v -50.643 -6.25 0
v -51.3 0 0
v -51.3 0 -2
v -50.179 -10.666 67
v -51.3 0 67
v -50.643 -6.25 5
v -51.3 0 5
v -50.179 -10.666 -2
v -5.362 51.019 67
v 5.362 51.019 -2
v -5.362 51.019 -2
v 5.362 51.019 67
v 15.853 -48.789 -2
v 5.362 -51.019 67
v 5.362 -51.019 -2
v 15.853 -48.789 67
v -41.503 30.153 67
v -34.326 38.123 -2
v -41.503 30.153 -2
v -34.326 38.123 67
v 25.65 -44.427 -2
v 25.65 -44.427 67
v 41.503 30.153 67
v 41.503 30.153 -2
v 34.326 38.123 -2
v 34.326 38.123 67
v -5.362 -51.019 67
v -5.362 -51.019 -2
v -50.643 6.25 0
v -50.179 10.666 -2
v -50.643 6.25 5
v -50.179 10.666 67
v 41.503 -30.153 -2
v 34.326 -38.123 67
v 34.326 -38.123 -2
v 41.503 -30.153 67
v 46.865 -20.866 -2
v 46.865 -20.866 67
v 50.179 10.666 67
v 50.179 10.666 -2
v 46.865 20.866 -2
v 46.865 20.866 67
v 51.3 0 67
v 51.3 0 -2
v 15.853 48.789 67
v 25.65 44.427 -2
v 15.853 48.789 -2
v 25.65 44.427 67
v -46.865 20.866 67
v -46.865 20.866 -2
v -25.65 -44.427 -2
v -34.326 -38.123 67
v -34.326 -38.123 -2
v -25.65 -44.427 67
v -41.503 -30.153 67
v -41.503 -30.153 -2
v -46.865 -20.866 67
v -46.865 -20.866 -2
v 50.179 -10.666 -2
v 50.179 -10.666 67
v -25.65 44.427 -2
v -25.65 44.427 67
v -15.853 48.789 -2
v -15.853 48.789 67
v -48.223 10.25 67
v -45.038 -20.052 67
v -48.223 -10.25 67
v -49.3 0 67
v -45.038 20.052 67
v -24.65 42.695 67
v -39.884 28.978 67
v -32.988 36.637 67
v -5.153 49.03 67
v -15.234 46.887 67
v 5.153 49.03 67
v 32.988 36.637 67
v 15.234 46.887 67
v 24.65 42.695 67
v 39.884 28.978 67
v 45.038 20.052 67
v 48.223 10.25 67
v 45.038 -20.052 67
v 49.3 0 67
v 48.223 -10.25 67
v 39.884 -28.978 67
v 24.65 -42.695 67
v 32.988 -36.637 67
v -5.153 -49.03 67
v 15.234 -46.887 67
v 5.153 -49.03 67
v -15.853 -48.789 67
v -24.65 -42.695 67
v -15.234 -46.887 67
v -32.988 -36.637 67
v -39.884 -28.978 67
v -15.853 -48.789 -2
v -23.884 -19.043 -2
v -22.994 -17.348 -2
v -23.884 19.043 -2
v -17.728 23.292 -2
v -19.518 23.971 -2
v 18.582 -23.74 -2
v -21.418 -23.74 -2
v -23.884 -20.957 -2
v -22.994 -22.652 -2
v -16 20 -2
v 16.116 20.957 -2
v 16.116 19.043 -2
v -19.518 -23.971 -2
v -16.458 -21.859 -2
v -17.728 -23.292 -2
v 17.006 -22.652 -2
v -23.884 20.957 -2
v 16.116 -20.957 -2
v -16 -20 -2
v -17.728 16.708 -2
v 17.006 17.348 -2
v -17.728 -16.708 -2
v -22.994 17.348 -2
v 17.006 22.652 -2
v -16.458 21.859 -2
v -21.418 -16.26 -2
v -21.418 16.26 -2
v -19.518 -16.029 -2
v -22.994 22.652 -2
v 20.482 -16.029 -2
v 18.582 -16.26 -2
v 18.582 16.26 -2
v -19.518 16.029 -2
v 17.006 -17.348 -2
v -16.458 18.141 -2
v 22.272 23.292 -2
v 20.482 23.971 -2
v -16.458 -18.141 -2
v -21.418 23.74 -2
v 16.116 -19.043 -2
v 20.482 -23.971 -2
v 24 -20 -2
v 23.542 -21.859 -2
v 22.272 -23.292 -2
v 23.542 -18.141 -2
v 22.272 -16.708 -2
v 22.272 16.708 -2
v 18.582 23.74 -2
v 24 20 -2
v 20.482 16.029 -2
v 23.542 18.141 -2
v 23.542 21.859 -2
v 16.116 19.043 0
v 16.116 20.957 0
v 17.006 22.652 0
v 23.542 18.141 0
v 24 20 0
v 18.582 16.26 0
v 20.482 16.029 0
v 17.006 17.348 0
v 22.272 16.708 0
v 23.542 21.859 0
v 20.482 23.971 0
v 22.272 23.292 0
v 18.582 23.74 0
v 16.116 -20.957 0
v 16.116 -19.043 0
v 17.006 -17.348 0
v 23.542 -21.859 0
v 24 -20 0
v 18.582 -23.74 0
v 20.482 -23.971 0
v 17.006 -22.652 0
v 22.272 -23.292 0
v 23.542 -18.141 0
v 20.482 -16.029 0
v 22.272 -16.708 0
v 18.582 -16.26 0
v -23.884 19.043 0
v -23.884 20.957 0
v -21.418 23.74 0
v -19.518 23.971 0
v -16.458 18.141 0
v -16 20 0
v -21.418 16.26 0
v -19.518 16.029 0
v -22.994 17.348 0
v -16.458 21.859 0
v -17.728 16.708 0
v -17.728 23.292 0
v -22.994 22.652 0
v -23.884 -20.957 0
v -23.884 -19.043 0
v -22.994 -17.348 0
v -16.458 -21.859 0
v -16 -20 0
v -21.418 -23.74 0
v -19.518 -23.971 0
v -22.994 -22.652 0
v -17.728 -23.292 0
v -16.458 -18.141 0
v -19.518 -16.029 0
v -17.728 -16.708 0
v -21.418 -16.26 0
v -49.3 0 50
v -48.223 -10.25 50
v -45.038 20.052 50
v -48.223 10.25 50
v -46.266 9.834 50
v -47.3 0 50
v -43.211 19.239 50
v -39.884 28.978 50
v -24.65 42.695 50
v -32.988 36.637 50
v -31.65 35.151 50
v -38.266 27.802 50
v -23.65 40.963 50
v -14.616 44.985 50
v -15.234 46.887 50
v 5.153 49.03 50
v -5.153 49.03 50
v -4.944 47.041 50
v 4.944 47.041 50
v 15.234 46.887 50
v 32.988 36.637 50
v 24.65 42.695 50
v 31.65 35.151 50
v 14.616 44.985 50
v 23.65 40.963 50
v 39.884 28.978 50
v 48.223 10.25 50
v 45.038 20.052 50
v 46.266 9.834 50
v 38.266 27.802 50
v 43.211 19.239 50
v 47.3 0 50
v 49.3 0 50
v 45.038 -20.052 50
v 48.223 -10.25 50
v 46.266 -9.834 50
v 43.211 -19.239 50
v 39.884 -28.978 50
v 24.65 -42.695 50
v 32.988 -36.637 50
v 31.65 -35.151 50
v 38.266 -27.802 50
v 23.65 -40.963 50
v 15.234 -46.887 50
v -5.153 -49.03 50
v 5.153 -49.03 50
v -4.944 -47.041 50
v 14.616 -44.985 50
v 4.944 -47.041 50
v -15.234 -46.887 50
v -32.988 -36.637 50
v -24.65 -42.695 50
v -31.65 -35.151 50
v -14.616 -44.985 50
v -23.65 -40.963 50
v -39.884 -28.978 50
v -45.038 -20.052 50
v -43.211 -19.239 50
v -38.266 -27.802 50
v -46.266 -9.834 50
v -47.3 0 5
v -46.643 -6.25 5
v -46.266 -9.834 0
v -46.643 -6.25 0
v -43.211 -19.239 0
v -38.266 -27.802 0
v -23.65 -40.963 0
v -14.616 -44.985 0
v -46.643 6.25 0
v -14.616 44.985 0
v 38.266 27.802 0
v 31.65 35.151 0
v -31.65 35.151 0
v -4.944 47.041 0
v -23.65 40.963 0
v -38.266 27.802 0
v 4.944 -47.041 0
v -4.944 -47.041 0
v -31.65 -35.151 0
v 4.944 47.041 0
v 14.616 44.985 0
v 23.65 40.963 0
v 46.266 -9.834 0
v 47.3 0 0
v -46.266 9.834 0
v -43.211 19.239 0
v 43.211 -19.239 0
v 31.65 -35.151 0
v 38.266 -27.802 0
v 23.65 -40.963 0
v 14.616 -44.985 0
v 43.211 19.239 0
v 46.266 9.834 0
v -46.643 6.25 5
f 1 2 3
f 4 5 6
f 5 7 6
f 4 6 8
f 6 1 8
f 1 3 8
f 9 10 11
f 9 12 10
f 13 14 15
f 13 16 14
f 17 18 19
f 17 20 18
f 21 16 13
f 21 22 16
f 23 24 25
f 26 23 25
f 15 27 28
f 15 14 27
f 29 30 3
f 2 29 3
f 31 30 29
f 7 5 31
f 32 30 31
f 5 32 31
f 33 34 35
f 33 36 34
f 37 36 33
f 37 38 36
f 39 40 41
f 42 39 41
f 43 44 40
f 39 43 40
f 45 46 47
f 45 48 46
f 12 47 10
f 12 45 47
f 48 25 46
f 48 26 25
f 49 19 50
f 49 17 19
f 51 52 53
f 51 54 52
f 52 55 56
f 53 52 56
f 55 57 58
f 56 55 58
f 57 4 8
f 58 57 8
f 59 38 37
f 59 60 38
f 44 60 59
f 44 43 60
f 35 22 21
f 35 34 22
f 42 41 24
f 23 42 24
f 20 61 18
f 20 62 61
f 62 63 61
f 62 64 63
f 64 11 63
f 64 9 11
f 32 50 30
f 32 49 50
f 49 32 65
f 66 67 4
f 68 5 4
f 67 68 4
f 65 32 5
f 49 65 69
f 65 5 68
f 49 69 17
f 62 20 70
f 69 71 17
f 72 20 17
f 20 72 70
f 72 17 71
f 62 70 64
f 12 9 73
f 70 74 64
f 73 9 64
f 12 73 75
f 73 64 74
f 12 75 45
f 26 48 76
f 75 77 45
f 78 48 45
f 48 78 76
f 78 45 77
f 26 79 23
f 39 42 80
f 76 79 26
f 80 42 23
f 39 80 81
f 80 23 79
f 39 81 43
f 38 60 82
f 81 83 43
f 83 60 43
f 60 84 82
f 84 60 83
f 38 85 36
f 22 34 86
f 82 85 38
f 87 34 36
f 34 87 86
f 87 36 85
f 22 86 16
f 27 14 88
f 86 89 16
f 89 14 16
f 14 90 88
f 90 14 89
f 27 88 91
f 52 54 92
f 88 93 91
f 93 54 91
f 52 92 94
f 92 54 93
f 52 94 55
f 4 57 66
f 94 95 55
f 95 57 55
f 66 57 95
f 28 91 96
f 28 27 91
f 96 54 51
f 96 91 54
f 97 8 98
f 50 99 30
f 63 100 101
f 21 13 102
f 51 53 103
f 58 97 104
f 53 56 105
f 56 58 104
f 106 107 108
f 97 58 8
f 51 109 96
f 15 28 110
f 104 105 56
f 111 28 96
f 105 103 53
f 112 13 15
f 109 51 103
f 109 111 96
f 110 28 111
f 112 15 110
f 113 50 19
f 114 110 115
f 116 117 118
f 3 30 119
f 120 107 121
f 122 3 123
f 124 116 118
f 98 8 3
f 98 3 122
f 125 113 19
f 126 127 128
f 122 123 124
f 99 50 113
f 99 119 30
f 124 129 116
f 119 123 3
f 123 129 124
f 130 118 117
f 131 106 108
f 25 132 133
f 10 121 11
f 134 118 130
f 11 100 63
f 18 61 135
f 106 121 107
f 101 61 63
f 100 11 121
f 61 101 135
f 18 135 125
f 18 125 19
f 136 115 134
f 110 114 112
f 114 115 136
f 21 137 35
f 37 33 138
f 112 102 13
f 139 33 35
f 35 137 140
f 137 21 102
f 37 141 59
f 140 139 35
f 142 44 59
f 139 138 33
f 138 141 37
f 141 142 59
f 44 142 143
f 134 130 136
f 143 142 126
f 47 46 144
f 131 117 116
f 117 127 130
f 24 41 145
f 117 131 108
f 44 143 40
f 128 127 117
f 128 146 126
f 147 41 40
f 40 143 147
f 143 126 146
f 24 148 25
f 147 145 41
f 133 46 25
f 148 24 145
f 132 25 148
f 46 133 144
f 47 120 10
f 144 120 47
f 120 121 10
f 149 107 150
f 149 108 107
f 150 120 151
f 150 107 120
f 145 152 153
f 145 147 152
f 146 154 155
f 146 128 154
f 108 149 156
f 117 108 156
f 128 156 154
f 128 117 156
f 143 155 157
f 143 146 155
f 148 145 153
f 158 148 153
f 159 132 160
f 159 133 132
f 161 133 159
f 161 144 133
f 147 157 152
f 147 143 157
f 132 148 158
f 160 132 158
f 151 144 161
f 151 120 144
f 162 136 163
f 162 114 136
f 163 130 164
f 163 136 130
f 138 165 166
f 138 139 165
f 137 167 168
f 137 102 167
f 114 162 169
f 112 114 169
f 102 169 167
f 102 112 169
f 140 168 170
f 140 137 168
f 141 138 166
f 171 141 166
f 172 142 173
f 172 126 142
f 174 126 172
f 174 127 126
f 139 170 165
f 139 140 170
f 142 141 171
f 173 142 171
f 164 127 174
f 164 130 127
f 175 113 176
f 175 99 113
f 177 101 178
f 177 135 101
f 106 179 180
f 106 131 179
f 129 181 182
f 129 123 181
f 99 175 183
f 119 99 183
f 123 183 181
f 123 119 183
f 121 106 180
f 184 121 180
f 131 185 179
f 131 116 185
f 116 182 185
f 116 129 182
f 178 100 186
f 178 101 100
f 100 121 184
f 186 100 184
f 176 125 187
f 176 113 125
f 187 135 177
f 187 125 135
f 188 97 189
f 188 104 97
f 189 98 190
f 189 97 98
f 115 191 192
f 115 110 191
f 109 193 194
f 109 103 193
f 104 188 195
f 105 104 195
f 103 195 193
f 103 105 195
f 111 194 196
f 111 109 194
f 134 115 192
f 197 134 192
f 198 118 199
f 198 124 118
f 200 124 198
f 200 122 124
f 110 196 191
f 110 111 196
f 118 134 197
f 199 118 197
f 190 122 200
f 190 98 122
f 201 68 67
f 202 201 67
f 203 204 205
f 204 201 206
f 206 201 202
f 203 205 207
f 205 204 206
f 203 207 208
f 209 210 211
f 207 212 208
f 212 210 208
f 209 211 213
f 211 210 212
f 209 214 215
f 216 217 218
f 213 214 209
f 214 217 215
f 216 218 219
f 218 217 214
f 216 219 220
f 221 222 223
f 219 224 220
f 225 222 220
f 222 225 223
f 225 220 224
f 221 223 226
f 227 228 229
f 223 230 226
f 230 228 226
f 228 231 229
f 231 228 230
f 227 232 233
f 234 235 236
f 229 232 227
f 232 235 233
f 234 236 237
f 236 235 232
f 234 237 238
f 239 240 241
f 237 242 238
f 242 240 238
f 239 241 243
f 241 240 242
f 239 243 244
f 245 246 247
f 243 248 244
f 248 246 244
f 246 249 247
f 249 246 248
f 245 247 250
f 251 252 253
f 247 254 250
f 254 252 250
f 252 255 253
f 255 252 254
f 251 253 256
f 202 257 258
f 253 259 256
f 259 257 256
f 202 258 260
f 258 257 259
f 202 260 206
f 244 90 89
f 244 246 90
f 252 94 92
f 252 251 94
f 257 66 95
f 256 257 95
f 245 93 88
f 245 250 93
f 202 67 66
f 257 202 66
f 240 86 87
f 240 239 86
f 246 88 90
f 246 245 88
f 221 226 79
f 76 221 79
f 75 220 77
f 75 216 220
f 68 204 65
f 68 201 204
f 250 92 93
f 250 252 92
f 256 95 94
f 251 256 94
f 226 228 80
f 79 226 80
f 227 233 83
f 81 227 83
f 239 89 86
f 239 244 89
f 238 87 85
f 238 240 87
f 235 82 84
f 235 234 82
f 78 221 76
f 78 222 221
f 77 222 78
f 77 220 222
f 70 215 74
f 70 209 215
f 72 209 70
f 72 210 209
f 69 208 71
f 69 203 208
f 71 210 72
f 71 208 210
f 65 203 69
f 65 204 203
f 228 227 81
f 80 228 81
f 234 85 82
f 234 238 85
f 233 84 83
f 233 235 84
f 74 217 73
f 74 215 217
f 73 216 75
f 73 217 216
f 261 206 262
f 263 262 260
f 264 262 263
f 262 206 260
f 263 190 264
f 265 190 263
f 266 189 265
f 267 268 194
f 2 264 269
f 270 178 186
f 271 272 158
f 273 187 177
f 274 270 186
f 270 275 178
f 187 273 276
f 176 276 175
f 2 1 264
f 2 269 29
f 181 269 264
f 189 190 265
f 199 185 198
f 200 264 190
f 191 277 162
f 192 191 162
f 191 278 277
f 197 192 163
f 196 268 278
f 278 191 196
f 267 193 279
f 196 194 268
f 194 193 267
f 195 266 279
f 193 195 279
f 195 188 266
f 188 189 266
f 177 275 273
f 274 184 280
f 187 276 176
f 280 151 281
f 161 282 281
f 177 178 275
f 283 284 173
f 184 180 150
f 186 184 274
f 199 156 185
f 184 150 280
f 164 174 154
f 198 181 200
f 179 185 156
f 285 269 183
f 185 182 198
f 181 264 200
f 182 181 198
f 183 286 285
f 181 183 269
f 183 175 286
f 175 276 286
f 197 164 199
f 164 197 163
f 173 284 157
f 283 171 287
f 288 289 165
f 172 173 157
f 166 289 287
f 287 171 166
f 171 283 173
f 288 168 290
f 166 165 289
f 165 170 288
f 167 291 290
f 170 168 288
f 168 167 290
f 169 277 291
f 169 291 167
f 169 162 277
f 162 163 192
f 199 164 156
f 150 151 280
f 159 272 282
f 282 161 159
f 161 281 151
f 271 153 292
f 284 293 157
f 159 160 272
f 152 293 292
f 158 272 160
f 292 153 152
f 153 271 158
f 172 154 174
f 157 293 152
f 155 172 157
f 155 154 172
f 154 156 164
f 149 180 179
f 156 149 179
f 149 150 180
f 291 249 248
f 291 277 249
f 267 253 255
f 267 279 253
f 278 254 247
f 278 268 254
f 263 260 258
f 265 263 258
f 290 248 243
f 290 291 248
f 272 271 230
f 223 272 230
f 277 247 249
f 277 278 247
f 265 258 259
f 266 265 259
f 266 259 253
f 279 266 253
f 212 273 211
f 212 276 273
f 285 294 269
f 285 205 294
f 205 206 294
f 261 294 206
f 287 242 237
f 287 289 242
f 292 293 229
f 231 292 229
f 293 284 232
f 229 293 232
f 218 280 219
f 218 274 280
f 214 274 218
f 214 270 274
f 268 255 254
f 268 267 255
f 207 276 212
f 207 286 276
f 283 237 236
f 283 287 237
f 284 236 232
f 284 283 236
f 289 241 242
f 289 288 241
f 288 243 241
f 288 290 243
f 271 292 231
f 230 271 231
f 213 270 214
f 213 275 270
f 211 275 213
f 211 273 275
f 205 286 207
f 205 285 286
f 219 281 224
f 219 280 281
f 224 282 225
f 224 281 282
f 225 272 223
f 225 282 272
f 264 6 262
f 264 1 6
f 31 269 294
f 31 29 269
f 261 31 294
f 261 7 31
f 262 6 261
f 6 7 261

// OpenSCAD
ButtonHolder();


hole_width = 8;
hole_spread = 20;

module ButtonHolder(height=67,
                    diameter=98.6,
                    outer_thickness=4,
                    inner_thickness=4,
                    inset=17,
                    base_thickness=2)
{
    difference()
    {
        union()
        {
            // Main cylinder body
            cylinder(h=height, d=(diameter + outer_thickness), center=false);

            // base
            translate([0,0,-base_thickness])
            cylinder(h=base_thickness, d=(diameter + outer_thickness), center=false);
        }

        union()
        {
            // Edge for button to sit on
            translate([0,0,height-inset])
            cylinder(h=inset, d=diameter, center=false);
            
            // Main internal cylinder
            cylinder(h=height, d=(diameter - inner_thickness), center=false);

            // Hole for USB
            translate([-90,-6.25,0])
            cube([50, 12.5, 5]);
            
            // Holes for idiocy
            union()
            {
                
                translate([hole_spread,hole_spread,0])
                cylinder(h=10, d=hole_width, center=true);
                
                translate([hole_spread,-hole_spread,0])
                cylinder(h=10, d=hole_width, center=true);
                
                translate([-hole_spread,hole_spread,0])
                cylinder(h=10, d=hole_width, center=true);
                
                translate([-hole_spread,-hole_spread,0])
                cylinder(h=10, d=hole_width, center=true);
            }
        }
    }
}
